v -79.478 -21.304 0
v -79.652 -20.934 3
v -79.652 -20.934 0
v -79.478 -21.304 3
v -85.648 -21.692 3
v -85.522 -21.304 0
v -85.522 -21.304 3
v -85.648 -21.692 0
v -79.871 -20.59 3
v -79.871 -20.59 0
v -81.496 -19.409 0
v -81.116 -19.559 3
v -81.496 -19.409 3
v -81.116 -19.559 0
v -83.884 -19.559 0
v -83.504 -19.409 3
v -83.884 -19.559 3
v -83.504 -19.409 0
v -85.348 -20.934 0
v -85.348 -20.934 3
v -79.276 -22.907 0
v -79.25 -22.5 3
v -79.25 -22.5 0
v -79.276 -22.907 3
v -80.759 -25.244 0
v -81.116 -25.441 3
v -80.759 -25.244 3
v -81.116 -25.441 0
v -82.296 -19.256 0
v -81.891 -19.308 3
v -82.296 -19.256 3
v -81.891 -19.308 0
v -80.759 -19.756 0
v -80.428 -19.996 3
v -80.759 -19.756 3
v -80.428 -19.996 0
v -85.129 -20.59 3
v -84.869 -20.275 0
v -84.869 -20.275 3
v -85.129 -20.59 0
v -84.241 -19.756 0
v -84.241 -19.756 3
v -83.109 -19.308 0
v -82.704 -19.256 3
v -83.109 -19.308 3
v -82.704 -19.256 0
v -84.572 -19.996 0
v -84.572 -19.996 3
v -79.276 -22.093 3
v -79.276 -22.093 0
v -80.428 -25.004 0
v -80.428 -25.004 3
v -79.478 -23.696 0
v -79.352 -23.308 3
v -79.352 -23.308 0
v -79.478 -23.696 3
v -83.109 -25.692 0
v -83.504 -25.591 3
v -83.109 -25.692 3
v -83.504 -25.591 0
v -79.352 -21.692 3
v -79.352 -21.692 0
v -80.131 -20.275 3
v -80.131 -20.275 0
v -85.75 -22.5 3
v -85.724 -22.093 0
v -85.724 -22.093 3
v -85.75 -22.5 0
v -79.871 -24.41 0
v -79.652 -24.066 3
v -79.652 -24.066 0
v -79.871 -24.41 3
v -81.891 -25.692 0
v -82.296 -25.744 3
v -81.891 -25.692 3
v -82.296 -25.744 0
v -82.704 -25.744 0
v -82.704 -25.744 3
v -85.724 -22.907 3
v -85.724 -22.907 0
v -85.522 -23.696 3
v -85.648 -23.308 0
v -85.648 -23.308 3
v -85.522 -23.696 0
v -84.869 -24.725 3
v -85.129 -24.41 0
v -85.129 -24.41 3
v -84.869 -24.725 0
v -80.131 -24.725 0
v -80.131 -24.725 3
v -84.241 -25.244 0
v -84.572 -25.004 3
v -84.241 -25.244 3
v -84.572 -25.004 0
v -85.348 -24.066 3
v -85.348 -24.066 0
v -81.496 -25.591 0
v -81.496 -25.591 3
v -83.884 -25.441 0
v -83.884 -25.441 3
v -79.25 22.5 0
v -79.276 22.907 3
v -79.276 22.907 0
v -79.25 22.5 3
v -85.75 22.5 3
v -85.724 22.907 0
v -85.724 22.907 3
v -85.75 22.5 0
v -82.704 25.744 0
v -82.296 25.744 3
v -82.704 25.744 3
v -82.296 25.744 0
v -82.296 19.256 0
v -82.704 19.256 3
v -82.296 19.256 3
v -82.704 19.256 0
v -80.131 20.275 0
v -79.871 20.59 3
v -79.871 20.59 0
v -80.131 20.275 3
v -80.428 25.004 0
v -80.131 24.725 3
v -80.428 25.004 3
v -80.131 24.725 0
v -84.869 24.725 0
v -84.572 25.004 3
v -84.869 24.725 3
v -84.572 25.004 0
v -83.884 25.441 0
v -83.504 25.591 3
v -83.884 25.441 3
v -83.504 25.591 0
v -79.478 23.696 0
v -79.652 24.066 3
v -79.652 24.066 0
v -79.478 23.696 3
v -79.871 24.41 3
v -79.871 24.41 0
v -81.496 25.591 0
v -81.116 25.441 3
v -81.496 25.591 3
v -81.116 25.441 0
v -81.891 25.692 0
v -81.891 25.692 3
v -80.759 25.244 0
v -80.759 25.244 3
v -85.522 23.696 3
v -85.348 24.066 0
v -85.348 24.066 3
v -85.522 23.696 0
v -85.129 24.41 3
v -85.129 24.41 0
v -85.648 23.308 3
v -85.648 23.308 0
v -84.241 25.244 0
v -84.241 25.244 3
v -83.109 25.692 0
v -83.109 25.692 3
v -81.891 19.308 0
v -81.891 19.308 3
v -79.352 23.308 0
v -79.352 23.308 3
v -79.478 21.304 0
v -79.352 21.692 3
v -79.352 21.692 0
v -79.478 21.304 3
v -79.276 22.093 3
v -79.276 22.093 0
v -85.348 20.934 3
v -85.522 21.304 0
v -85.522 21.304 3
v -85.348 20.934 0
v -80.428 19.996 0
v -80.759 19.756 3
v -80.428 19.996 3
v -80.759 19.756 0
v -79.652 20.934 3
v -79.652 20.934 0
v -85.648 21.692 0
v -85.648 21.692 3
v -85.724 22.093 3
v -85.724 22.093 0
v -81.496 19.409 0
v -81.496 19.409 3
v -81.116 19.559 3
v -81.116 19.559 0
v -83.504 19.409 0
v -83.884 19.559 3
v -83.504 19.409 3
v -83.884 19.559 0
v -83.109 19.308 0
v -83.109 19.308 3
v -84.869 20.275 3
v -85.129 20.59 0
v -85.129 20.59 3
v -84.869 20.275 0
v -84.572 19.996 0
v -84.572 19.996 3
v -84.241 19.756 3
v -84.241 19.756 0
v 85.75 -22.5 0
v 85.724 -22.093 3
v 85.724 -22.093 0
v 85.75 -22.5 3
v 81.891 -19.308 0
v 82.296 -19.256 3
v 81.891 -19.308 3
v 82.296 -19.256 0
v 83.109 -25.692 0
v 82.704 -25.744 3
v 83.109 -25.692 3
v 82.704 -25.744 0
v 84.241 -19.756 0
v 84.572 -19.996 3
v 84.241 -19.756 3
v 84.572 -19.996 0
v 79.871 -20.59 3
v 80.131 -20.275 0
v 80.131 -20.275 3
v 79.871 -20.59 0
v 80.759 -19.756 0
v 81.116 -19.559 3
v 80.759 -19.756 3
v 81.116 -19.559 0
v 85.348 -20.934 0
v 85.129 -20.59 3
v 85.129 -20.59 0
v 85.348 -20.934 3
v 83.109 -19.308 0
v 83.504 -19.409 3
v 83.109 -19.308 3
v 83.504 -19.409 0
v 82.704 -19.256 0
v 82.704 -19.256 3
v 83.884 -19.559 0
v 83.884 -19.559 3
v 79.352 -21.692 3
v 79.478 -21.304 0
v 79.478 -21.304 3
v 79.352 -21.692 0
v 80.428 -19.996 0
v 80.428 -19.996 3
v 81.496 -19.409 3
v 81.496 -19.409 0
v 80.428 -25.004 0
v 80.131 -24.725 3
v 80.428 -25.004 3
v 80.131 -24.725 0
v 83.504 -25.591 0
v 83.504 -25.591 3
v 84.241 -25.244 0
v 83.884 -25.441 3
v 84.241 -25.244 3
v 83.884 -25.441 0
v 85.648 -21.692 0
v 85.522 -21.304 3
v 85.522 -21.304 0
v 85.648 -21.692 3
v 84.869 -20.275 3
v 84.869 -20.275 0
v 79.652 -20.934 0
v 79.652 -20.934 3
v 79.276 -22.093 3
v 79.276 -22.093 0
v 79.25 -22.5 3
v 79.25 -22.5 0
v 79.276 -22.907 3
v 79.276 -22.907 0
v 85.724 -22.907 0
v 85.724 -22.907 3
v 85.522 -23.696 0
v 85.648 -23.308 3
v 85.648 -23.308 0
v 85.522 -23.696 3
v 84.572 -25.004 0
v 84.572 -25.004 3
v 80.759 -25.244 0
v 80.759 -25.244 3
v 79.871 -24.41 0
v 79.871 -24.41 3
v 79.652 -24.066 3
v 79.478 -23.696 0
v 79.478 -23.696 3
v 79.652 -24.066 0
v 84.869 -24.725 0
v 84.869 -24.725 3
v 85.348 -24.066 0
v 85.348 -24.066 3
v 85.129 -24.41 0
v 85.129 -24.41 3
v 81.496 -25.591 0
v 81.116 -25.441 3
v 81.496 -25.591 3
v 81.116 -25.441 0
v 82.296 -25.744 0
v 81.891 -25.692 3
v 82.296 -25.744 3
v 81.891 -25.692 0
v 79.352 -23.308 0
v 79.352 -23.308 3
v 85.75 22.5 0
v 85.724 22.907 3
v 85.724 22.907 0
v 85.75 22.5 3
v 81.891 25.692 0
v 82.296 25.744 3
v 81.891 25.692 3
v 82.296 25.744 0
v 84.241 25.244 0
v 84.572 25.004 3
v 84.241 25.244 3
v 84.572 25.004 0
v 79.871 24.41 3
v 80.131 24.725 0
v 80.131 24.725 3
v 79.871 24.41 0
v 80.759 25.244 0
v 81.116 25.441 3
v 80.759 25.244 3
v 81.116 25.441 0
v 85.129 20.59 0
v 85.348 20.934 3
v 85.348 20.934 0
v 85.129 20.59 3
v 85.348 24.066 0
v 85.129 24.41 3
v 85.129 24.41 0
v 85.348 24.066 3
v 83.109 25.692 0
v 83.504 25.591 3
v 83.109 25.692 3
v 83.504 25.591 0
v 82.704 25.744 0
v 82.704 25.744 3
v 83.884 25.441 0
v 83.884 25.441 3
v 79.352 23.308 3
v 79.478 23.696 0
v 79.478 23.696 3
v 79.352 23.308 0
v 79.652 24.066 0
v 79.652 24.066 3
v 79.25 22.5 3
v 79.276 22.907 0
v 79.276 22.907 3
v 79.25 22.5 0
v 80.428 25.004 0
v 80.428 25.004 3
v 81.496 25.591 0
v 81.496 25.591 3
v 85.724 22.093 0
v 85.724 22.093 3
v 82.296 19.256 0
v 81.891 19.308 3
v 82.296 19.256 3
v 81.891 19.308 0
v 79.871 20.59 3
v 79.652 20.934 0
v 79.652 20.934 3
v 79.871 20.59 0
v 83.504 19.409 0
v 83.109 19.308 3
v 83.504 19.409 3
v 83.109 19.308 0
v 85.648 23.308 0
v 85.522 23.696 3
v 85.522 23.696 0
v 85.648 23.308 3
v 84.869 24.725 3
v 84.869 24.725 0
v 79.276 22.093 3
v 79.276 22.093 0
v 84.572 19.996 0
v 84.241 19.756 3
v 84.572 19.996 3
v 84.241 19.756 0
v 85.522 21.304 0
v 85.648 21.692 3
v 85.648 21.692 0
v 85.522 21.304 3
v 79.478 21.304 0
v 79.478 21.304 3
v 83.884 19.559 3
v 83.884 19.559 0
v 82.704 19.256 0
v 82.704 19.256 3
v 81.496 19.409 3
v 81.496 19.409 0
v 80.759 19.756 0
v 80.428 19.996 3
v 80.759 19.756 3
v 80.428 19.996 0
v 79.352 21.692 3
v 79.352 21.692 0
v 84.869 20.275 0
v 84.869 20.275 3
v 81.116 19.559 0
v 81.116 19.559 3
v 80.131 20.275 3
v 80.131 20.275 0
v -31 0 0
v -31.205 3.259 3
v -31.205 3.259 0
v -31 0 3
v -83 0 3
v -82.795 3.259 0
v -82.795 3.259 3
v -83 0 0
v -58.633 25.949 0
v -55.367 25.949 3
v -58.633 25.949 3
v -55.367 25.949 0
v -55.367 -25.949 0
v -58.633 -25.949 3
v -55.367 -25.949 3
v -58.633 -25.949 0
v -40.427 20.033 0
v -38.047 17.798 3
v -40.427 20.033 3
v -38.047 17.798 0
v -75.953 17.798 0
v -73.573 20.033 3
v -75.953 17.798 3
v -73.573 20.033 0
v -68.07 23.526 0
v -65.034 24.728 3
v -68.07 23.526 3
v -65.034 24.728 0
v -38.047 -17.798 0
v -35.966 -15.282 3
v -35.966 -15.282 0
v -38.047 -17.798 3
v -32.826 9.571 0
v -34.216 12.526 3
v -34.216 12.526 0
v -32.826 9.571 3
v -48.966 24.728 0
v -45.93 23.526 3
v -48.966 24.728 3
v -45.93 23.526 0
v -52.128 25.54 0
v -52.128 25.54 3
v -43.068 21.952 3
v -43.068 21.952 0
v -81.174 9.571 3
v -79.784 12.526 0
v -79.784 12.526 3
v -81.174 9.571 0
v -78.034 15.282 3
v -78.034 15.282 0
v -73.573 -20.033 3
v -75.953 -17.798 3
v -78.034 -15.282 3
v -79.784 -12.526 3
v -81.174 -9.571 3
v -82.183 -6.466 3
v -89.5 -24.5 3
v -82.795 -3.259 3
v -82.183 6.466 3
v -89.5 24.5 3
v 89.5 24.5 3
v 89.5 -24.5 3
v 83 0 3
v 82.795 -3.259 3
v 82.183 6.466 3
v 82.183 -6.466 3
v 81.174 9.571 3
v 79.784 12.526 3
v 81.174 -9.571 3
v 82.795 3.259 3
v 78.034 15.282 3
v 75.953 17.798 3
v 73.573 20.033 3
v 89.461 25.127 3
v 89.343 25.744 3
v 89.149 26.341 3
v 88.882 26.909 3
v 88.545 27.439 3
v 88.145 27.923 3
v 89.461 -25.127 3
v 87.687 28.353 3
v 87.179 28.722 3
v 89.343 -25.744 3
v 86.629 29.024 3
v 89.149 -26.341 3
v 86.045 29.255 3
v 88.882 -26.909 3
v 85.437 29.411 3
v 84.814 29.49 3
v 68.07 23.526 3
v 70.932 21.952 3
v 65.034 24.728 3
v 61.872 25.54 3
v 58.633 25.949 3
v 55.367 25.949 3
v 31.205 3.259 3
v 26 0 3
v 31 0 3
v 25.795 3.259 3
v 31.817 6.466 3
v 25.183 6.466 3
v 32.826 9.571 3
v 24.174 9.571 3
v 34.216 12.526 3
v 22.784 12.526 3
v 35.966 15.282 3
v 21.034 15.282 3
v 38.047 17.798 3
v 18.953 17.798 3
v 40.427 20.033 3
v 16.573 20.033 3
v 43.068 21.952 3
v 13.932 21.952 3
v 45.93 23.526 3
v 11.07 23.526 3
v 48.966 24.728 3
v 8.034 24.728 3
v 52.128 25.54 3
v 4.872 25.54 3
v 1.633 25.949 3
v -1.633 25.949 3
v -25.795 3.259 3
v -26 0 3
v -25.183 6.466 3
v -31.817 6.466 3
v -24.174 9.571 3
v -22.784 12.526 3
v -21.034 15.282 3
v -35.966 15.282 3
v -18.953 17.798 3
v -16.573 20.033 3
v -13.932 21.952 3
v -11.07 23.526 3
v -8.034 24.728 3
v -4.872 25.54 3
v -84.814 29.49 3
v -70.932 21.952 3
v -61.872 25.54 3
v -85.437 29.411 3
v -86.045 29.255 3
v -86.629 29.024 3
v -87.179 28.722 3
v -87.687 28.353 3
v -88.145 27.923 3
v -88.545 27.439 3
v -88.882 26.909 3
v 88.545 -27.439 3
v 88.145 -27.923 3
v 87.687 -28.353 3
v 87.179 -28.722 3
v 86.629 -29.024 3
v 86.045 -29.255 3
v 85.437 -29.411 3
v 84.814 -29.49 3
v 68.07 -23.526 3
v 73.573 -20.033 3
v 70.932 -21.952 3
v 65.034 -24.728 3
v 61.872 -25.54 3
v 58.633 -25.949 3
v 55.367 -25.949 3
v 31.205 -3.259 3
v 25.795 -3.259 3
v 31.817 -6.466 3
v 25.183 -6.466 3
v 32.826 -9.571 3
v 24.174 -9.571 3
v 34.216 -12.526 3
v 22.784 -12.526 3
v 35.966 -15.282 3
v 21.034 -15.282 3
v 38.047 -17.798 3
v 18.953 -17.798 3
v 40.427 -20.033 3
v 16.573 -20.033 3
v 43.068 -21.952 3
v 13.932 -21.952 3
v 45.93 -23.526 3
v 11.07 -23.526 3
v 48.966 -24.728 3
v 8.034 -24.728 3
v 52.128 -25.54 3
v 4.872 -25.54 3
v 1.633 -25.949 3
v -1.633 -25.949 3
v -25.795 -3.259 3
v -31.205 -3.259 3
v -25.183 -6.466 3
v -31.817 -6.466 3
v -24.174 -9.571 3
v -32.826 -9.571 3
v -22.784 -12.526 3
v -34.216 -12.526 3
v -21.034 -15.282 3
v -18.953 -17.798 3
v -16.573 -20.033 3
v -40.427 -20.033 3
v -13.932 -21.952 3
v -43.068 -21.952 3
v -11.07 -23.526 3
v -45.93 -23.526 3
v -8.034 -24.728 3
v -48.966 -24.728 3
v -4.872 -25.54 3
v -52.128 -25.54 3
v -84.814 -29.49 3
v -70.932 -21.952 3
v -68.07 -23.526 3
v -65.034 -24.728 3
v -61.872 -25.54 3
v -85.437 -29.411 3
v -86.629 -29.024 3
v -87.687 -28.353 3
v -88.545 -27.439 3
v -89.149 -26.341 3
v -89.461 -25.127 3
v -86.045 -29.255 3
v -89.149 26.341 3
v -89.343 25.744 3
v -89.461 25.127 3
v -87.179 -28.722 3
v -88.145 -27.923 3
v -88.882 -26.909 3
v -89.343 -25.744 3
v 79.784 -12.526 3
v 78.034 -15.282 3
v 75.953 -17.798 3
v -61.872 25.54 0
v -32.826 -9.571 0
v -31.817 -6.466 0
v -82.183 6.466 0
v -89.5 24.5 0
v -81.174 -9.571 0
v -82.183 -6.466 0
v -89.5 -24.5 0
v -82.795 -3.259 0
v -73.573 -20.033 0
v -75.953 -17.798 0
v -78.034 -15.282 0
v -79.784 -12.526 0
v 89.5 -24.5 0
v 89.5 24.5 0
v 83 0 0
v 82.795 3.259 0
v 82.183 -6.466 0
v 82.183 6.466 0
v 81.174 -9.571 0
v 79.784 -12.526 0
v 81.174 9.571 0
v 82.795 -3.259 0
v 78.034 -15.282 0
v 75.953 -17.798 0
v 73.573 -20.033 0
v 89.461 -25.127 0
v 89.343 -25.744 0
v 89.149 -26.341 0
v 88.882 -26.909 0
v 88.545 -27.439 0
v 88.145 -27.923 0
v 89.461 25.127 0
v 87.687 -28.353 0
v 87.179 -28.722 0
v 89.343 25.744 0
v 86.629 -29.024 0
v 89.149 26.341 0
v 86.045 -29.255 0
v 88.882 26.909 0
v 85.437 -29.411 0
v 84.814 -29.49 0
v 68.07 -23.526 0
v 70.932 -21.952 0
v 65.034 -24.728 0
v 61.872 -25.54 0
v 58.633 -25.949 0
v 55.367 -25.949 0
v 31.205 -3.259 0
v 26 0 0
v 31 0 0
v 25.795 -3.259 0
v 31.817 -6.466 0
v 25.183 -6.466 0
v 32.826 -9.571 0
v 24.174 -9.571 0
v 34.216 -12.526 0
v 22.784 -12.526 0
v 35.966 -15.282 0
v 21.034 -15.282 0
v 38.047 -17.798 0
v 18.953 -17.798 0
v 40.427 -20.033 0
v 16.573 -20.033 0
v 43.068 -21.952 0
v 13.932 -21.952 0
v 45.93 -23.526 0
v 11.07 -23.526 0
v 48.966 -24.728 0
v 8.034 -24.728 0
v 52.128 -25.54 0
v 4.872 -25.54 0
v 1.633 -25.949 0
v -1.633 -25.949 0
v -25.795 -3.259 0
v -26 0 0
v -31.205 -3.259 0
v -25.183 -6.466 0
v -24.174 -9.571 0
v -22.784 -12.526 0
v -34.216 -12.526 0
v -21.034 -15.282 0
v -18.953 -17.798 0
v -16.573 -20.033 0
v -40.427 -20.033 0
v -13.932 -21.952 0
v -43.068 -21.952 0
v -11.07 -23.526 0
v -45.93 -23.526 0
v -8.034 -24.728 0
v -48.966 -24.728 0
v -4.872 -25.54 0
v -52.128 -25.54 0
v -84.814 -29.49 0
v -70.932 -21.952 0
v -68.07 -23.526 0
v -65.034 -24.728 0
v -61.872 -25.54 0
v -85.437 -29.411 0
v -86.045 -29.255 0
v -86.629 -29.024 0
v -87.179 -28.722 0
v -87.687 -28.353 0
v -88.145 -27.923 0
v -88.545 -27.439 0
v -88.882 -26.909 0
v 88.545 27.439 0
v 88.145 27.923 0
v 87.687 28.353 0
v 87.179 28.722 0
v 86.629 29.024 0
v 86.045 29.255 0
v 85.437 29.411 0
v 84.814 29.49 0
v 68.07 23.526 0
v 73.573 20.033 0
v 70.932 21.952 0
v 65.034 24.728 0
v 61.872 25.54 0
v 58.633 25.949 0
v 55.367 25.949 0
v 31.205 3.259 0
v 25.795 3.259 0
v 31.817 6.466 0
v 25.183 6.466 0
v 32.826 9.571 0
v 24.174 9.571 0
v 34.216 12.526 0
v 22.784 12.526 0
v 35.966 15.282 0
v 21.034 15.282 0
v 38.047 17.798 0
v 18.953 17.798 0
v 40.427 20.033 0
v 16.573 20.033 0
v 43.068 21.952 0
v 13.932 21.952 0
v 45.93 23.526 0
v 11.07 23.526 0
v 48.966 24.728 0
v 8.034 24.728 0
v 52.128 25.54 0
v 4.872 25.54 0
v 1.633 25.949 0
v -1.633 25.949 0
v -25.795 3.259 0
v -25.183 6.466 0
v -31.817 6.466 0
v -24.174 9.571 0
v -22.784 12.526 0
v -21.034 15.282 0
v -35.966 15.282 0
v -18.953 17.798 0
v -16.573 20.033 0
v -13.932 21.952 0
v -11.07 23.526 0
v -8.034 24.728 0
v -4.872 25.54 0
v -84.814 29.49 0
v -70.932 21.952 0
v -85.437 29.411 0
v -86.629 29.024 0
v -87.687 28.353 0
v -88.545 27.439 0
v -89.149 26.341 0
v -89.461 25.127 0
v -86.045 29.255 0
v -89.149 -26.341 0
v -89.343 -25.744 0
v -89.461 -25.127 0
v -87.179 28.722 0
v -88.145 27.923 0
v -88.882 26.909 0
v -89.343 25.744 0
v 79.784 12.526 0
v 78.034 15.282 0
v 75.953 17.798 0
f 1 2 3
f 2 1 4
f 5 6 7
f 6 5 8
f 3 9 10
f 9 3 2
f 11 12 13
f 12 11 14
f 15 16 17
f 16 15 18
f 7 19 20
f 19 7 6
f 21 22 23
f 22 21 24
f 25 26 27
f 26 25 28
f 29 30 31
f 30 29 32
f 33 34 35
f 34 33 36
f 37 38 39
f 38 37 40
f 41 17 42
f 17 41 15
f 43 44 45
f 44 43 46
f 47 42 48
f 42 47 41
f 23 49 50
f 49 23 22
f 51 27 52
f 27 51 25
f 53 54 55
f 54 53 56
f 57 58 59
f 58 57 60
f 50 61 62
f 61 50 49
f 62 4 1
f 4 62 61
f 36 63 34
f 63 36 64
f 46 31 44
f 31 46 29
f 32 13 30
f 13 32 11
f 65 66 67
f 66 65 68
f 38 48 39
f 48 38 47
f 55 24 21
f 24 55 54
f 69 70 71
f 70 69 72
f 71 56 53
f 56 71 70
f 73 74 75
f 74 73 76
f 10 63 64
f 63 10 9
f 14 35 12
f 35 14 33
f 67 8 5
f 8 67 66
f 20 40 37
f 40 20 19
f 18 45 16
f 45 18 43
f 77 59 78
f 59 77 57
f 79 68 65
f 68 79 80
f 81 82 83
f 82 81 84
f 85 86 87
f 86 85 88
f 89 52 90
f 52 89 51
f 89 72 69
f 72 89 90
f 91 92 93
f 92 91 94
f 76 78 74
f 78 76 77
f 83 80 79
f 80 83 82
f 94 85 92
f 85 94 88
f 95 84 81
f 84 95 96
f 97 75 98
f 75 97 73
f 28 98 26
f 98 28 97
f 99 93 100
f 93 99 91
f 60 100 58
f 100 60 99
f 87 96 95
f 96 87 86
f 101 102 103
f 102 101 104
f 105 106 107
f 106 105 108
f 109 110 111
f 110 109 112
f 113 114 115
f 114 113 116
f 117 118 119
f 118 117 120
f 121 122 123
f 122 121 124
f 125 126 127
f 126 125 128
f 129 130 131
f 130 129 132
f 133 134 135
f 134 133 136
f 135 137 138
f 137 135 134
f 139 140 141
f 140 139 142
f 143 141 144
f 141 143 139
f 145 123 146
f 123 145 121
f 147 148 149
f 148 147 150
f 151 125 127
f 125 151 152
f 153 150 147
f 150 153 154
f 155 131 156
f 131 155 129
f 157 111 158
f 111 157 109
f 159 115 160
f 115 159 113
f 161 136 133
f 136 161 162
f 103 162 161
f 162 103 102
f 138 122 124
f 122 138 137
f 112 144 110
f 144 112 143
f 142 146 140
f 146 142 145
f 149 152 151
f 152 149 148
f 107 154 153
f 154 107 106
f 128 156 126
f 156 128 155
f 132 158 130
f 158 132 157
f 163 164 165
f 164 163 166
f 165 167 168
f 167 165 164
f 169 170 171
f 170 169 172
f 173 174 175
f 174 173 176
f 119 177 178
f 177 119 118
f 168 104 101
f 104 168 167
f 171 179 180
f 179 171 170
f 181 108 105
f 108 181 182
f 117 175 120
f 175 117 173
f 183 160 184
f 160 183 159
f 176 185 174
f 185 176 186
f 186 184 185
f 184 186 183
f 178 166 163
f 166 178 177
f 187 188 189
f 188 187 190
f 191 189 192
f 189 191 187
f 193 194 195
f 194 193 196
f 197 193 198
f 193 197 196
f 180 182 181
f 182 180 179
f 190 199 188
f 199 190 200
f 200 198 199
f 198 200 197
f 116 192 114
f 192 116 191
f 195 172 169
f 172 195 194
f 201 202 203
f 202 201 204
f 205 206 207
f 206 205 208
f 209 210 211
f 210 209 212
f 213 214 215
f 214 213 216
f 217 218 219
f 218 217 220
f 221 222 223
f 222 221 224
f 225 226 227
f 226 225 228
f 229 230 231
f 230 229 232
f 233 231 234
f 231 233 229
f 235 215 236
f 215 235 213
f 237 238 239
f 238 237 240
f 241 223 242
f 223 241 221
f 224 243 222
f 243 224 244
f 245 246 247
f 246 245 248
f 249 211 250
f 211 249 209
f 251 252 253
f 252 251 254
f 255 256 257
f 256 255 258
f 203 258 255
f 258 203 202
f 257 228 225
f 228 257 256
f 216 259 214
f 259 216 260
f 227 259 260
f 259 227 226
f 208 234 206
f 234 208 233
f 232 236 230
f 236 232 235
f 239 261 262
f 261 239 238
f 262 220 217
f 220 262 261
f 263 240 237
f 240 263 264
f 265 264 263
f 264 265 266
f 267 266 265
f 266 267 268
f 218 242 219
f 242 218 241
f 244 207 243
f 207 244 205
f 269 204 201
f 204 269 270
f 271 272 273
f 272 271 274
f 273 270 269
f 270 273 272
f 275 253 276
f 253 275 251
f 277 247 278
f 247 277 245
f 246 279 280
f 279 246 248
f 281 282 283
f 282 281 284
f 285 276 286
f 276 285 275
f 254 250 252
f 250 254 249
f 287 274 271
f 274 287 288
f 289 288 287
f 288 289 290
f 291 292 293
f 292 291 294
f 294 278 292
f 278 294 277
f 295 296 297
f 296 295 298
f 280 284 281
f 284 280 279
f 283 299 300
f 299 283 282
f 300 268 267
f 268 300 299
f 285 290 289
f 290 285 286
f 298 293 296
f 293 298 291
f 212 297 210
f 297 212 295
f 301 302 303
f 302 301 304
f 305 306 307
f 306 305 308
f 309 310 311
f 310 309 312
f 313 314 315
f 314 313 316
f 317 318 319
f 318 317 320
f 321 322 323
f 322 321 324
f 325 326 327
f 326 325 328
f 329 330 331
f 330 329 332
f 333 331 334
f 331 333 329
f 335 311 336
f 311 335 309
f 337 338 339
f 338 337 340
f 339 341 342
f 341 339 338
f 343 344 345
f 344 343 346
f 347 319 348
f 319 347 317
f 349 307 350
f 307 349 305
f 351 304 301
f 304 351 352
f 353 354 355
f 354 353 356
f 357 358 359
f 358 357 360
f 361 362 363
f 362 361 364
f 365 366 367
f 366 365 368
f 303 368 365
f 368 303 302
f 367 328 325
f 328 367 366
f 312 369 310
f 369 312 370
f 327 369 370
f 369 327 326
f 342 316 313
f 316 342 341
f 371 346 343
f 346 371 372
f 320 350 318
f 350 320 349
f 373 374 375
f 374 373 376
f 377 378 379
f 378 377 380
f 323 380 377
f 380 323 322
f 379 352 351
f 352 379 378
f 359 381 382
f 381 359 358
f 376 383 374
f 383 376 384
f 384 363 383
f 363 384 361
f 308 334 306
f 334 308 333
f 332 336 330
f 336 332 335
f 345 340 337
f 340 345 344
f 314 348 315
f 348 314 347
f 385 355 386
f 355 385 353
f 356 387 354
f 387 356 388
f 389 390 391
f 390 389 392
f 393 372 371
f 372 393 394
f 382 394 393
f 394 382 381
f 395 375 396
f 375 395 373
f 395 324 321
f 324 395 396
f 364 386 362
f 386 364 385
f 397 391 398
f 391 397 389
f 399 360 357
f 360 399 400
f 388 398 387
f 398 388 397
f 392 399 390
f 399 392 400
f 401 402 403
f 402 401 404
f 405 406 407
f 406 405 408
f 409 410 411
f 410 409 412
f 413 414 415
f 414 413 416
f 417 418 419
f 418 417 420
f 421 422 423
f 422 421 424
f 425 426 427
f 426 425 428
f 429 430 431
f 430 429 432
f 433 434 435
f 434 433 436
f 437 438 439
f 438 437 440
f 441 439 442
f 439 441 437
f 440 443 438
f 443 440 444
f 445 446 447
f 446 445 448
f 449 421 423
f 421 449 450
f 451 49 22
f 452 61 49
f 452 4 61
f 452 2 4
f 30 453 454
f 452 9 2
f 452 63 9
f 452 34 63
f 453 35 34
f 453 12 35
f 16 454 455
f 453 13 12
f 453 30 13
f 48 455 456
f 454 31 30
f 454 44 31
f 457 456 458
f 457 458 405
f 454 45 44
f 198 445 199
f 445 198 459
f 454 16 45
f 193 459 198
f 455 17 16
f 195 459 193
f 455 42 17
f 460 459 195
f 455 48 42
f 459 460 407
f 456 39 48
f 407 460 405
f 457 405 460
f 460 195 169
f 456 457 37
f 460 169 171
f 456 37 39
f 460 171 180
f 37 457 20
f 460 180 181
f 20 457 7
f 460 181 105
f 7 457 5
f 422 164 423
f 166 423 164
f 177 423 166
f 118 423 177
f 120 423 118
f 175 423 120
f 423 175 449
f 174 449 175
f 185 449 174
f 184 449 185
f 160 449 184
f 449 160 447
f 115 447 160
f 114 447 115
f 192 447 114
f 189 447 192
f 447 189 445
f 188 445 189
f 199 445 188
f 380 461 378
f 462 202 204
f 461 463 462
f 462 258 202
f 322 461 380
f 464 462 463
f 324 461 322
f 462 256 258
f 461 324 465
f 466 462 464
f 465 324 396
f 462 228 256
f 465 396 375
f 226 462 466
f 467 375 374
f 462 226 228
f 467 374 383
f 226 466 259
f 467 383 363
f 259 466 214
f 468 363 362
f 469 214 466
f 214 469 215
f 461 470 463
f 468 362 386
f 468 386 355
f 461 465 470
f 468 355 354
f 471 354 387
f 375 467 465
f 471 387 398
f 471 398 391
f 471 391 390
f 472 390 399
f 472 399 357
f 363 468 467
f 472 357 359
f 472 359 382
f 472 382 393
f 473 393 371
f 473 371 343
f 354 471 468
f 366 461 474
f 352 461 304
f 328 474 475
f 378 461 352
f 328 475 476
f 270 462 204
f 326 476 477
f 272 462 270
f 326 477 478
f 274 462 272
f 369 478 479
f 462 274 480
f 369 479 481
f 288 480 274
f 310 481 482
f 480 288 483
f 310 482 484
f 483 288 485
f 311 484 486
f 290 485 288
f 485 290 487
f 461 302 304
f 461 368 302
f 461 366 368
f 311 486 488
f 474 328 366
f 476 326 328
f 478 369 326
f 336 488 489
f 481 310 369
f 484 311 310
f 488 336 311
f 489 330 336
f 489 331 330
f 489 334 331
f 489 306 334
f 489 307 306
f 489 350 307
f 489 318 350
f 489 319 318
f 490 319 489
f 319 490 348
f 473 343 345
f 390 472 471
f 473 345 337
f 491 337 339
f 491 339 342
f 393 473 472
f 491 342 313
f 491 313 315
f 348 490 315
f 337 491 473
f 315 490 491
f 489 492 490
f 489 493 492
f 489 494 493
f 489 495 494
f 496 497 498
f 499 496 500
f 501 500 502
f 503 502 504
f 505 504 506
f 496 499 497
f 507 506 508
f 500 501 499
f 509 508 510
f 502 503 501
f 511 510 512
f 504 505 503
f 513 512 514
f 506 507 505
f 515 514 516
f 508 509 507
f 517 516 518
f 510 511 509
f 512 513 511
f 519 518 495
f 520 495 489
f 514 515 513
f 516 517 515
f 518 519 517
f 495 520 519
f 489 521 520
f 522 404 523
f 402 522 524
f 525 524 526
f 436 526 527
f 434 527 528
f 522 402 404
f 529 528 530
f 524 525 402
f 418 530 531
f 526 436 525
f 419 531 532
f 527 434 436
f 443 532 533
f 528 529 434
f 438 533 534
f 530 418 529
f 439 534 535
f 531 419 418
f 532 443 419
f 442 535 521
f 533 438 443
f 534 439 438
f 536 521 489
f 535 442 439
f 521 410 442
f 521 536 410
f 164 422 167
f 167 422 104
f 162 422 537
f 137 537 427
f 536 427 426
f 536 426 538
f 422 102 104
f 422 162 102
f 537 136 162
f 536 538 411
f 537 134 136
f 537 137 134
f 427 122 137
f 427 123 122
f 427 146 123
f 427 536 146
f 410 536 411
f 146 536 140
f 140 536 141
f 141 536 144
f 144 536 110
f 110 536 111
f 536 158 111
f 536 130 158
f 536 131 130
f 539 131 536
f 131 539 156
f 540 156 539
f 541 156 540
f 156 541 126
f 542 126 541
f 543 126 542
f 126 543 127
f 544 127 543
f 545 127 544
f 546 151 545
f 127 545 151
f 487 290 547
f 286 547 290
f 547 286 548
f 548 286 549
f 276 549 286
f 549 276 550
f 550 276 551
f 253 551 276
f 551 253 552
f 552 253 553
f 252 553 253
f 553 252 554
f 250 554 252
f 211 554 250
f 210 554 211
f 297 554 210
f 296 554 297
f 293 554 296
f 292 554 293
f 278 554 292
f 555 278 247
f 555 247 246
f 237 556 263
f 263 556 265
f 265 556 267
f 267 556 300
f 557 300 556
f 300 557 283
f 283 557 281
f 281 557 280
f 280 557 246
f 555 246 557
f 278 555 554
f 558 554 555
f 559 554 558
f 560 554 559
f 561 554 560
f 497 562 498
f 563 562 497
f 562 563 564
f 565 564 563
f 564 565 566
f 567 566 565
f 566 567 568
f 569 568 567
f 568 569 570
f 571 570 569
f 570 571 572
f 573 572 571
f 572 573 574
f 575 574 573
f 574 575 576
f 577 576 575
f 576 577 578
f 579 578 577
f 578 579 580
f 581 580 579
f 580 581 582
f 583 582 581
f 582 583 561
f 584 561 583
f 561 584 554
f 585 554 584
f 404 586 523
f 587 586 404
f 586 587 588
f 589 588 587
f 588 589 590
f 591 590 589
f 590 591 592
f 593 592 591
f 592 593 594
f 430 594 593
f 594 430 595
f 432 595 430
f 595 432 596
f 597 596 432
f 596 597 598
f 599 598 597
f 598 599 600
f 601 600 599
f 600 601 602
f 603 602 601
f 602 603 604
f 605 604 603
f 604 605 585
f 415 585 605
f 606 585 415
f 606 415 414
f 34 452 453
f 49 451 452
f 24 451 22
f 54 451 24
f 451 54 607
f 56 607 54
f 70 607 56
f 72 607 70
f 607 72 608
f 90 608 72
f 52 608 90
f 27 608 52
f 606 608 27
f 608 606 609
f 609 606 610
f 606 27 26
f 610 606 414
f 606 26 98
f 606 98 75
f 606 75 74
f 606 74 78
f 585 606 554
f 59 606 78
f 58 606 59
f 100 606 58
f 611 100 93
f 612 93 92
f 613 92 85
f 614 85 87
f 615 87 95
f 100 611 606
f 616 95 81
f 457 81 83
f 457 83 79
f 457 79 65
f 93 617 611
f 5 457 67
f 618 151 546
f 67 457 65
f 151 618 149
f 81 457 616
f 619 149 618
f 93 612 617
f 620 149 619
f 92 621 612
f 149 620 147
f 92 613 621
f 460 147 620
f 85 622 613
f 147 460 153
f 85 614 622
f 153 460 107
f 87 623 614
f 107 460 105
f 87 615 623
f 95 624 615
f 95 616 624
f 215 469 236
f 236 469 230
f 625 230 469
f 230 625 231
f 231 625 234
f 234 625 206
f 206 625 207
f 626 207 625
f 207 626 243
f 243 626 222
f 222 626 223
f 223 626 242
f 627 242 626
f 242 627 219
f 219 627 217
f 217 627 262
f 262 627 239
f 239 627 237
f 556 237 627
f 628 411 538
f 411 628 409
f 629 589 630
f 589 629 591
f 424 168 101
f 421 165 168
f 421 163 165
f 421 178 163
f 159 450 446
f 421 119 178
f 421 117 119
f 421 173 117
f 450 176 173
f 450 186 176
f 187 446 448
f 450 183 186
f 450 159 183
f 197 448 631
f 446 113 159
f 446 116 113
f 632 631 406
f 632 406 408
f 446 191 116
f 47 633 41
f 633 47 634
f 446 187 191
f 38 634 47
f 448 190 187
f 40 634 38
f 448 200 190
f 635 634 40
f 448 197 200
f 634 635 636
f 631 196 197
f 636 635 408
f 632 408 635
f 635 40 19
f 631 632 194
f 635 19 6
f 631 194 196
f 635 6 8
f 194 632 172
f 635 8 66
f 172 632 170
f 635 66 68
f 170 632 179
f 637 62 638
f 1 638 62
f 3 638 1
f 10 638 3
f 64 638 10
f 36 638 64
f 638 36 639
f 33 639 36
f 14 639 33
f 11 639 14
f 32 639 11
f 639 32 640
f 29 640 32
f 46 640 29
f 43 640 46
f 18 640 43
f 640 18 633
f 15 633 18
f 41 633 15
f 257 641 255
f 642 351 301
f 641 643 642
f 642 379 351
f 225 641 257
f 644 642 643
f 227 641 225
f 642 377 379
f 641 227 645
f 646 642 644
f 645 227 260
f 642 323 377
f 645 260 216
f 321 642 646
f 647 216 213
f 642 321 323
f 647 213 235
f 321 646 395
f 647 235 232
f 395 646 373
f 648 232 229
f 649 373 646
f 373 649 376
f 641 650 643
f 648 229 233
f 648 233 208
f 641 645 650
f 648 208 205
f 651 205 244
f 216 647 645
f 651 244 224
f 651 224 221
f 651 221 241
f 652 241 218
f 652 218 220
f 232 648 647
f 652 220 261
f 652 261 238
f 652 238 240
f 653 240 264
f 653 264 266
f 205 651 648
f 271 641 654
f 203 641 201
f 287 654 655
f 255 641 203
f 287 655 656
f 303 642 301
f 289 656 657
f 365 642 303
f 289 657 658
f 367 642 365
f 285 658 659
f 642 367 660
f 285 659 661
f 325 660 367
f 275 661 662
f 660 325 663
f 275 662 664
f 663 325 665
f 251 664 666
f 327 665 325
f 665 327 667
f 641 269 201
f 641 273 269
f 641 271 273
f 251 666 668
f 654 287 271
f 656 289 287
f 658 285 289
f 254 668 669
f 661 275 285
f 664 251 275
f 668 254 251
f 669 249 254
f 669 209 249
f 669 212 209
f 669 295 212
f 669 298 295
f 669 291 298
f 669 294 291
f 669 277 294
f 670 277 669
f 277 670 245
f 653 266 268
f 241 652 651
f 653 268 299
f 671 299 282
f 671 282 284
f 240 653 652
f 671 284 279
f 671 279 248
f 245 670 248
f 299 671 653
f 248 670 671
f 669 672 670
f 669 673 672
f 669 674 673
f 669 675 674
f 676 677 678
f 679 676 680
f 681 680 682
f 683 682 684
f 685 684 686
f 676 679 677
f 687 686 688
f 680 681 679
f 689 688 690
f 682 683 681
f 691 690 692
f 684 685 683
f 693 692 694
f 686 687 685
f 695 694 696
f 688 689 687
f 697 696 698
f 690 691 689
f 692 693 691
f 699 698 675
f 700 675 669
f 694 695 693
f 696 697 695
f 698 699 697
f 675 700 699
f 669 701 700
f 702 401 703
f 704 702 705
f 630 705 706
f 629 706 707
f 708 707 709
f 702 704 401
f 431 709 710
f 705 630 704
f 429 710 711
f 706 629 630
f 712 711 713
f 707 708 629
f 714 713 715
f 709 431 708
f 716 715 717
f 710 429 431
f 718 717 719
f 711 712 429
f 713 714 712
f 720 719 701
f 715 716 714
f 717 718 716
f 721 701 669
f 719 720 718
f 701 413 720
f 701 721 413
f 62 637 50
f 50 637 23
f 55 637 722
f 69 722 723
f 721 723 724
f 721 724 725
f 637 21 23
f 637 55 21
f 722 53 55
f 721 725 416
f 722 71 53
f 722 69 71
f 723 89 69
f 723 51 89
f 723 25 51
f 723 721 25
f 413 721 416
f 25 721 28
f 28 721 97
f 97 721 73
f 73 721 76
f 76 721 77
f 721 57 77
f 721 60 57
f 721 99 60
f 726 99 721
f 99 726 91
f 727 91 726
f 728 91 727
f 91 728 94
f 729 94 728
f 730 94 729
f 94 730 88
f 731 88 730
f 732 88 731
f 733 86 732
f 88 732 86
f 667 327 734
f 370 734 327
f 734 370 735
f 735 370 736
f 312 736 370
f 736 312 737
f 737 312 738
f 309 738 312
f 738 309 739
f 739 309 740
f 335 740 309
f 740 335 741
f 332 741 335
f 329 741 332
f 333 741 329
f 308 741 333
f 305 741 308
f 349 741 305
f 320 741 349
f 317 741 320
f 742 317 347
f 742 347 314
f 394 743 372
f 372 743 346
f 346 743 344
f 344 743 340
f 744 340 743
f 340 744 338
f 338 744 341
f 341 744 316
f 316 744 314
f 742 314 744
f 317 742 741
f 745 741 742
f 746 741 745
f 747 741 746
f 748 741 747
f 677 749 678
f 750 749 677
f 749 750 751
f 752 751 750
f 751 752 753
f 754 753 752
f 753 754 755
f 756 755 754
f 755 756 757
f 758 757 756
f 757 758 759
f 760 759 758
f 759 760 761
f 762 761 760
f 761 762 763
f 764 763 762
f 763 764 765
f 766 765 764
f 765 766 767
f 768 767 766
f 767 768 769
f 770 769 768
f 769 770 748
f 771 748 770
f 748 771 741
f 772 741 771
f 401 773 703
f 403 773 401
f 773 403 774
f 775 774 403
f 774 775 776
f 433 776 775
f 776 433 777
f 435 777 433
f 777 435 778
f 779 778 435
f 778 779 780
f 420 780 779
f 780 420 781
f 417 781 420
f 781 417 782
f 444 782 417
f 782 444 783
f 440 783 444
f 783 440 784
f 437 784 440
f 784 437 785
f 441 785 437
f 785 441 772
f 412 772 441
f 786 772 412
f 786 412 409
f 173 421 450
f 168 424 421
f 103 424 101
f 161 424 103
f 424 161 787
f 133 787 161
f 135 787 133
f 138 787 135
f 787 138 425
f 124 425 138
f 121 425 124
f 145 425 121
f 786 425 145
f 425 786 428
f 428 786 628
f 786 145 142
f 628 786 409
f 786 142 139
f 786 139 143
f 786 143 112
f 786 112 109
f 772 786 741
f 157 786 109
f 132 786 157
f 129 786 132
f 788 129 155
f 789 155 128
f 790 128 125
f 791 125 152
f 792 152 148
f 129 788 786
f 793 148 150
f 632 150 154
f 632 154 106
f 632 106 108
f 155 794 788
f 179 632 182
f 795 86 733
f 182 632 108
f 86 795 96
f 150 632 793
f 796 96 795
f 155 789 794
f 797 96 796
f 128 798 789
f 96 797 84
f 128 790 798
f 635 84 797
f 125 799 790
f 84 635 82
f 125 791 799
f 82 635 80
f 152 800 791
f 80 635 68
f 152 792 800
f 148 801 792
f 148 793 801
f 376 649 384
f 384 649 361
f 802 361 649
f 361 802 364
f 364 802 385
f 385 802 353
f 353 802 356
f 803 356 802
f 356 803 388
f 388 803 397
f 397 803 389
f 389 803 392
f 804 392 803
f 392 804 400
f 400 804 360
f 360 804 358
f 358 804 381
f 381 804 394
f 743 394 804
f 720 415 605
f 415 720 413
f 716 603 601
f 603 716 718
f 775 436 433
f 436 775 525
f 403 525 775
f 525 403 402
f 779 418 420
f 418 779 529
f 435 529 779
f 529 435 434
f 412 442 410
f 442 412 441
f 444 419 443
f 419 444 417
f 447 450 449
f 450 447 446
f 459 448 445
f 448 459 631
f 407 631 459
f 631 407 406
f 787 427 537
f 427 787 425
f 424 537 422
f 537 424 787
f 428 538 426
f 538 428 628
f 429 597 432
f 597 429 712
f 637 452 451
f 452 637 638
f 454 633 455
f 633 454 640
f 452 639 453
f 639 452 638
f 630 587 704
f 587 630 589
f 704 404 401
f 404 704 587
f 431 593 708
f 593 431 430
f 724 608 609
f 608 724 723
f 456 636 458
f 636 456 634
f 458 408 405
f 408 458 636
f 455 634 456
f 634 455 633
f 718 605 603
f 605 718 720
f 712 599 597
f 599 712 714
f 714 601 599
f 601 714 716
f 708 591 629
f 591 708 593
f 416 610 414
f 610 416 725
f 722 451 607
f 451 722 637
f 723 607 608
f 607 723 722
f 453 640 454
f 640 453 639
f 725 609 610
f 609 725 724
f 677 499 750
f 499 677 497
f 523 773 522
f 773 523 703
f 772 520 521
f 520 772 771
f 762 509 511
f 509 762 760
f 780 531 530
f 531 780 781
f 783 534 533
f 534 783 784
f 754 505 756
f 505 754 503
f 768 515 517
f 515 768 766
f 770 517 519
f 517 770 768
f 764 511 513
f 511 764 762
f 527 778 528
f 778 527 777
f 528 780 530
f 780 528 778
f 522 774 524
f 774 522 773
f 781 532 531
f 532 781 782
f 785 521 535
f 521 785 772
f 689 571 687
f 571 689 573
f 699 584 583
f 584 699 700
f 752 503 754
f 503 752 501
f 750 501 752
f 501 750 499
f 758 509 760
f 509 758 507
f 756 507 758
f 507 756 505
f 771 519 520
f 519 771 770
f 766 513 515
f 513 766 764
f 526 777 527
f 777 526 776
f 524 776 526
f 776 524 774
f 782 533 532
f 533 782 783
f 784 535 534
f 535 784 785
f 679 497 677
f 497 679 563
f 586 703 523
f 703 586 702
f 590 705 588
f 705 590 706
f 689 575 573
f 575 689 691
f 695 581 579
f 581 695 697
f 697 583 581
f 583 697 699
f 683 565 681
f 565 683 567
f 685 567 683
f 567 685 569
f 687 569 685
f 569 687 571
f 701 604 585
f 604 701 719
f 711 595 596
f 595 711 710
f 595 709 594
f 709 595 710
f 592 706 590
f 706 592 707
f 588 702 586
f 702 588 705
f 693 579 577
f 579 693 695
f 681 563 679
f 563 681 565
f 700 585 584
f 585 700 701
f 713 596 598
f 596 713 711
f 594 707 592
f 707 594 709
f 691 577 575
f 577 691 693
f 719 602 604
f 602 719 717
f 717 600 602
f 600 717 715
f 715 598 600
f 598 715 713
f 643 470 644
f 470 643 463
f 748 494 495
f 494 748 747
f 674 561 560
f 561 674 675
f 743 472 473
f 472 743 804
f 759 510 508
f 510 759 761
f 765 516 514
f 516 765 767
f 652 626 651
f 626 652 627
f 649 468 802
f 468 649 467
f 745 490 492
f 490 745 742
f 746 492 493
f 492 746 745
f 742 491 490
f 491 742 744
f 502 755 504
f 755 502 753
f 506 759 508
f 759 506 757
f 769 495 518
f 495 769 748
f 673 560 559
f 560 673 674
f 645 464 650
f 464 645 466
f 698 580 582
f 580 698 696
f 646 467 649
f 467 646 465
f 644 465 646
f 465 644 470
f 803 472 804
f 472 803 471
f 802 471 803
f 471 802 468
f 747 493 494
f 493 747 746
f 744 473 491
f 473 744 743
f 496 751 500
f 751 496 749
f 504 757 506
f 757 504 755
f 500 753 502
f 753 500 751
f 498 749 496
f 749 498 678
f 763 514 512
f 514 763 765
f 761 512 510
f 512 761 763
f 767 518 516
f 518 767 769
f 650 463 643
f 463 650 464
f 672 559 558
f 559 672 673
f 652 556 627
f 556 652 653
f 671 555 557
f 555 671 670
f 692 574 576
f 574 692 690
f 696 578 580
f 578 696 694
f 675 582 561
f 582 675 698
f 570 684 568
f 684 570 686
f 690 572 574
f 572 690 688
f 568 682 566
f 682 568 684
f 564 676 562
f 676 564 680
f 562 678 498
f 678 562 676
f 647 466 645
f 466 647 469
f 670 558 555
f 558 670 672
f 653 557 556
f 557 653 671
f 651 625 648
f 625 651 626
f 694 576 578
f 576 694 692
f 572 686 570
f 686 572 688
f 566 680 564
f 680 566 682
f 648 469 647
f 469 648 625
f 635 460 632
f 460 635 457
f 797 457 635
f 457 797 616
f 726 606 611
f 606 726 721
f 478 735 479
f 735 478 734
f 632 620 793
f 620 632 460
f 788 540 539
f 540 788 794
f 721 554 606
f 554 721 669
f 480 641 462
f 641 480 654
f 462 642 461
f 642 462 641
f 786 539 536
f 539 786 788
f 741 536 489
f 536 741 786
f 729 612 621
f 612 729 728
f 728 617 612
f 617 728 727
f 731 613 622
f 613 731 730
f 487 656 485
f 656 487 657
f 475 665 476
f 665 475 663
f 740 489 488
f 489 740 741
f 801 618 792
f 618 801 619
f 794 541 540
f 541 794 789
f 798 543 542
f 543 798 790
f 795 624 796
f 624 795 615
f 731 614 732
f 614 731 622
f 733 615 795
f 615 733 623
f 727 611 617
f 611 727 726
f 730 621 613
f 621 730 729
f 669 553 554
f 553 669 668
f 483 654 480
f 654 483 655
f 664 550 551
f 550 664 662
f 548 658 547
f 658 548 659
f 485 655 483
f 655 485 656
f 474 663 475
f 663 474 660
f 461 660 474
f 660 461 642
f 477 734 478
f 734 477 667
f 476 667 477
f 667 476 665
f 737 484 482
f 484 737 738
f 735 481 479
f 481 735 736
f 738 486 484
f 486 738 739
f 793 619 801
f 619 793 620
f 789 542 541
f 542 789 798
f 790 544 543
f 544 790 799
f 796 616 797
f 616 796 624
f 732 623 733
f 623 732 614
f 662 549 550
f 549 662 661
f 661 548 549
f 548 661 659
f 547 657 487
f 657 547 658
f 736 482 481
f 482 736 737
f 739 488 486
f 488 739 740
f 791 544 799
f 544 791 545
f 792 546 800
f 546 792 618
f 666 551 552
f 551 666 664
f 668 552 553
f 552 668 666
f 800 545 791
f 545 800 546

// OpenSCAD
$fn = 50;


difference() {
	union() {
		hull() {
			translate(v = [-84.5000000000, 24.5000000000, 0]) {
				cylinder(h = 3, r = 5);
			}
			translate(v = [84.5000000000, 24.5000000000, 0]) {
				cylinder(h = 3, r = 5);
			}
			translate(v = [-84.5000000000, -24.5000000000, 0]) {
				cylinder(h = 3, r = 5);
			}
			translate(v = [84.5000000000, -24.5000000000, 0]) {
				cylinder(h = 3, r = 5);
			}
		}
	}
	union() {
		#translate(v = [-82.5000000000, -22.5000000000, -100.0000000000]) {
			cylinder(h = 200, r = 3.2500000000);
		}
		#translate(v = [-82.5000000000, 22.5000000000, -100.0000000000]) {
			cylinder(h = 200, r = 3.2500000000);
		}
		#translate(v = [82.5000000000, -22.5000000000, -100.0000000000]) {
			cylinder(h = 200, r = 3.2500000000);
		}
		#translate(v = [82.5000000000, 22.5000000000, -100.0000000000]) {
			cylinder(h = 200, r = 3.2500000000);
		}
		#translate(v = [-57.0000000000, 0, 0]) {
			cylinder(h = 3, r = 26.0000000000);
		}
		#cylinder(h = 3, r = 26.0000000000);
		#translate(v = [57.0000000000, 0, 0]) {
			cylinder(h = 3, r = 26.0000000000);
		}
	}
}
